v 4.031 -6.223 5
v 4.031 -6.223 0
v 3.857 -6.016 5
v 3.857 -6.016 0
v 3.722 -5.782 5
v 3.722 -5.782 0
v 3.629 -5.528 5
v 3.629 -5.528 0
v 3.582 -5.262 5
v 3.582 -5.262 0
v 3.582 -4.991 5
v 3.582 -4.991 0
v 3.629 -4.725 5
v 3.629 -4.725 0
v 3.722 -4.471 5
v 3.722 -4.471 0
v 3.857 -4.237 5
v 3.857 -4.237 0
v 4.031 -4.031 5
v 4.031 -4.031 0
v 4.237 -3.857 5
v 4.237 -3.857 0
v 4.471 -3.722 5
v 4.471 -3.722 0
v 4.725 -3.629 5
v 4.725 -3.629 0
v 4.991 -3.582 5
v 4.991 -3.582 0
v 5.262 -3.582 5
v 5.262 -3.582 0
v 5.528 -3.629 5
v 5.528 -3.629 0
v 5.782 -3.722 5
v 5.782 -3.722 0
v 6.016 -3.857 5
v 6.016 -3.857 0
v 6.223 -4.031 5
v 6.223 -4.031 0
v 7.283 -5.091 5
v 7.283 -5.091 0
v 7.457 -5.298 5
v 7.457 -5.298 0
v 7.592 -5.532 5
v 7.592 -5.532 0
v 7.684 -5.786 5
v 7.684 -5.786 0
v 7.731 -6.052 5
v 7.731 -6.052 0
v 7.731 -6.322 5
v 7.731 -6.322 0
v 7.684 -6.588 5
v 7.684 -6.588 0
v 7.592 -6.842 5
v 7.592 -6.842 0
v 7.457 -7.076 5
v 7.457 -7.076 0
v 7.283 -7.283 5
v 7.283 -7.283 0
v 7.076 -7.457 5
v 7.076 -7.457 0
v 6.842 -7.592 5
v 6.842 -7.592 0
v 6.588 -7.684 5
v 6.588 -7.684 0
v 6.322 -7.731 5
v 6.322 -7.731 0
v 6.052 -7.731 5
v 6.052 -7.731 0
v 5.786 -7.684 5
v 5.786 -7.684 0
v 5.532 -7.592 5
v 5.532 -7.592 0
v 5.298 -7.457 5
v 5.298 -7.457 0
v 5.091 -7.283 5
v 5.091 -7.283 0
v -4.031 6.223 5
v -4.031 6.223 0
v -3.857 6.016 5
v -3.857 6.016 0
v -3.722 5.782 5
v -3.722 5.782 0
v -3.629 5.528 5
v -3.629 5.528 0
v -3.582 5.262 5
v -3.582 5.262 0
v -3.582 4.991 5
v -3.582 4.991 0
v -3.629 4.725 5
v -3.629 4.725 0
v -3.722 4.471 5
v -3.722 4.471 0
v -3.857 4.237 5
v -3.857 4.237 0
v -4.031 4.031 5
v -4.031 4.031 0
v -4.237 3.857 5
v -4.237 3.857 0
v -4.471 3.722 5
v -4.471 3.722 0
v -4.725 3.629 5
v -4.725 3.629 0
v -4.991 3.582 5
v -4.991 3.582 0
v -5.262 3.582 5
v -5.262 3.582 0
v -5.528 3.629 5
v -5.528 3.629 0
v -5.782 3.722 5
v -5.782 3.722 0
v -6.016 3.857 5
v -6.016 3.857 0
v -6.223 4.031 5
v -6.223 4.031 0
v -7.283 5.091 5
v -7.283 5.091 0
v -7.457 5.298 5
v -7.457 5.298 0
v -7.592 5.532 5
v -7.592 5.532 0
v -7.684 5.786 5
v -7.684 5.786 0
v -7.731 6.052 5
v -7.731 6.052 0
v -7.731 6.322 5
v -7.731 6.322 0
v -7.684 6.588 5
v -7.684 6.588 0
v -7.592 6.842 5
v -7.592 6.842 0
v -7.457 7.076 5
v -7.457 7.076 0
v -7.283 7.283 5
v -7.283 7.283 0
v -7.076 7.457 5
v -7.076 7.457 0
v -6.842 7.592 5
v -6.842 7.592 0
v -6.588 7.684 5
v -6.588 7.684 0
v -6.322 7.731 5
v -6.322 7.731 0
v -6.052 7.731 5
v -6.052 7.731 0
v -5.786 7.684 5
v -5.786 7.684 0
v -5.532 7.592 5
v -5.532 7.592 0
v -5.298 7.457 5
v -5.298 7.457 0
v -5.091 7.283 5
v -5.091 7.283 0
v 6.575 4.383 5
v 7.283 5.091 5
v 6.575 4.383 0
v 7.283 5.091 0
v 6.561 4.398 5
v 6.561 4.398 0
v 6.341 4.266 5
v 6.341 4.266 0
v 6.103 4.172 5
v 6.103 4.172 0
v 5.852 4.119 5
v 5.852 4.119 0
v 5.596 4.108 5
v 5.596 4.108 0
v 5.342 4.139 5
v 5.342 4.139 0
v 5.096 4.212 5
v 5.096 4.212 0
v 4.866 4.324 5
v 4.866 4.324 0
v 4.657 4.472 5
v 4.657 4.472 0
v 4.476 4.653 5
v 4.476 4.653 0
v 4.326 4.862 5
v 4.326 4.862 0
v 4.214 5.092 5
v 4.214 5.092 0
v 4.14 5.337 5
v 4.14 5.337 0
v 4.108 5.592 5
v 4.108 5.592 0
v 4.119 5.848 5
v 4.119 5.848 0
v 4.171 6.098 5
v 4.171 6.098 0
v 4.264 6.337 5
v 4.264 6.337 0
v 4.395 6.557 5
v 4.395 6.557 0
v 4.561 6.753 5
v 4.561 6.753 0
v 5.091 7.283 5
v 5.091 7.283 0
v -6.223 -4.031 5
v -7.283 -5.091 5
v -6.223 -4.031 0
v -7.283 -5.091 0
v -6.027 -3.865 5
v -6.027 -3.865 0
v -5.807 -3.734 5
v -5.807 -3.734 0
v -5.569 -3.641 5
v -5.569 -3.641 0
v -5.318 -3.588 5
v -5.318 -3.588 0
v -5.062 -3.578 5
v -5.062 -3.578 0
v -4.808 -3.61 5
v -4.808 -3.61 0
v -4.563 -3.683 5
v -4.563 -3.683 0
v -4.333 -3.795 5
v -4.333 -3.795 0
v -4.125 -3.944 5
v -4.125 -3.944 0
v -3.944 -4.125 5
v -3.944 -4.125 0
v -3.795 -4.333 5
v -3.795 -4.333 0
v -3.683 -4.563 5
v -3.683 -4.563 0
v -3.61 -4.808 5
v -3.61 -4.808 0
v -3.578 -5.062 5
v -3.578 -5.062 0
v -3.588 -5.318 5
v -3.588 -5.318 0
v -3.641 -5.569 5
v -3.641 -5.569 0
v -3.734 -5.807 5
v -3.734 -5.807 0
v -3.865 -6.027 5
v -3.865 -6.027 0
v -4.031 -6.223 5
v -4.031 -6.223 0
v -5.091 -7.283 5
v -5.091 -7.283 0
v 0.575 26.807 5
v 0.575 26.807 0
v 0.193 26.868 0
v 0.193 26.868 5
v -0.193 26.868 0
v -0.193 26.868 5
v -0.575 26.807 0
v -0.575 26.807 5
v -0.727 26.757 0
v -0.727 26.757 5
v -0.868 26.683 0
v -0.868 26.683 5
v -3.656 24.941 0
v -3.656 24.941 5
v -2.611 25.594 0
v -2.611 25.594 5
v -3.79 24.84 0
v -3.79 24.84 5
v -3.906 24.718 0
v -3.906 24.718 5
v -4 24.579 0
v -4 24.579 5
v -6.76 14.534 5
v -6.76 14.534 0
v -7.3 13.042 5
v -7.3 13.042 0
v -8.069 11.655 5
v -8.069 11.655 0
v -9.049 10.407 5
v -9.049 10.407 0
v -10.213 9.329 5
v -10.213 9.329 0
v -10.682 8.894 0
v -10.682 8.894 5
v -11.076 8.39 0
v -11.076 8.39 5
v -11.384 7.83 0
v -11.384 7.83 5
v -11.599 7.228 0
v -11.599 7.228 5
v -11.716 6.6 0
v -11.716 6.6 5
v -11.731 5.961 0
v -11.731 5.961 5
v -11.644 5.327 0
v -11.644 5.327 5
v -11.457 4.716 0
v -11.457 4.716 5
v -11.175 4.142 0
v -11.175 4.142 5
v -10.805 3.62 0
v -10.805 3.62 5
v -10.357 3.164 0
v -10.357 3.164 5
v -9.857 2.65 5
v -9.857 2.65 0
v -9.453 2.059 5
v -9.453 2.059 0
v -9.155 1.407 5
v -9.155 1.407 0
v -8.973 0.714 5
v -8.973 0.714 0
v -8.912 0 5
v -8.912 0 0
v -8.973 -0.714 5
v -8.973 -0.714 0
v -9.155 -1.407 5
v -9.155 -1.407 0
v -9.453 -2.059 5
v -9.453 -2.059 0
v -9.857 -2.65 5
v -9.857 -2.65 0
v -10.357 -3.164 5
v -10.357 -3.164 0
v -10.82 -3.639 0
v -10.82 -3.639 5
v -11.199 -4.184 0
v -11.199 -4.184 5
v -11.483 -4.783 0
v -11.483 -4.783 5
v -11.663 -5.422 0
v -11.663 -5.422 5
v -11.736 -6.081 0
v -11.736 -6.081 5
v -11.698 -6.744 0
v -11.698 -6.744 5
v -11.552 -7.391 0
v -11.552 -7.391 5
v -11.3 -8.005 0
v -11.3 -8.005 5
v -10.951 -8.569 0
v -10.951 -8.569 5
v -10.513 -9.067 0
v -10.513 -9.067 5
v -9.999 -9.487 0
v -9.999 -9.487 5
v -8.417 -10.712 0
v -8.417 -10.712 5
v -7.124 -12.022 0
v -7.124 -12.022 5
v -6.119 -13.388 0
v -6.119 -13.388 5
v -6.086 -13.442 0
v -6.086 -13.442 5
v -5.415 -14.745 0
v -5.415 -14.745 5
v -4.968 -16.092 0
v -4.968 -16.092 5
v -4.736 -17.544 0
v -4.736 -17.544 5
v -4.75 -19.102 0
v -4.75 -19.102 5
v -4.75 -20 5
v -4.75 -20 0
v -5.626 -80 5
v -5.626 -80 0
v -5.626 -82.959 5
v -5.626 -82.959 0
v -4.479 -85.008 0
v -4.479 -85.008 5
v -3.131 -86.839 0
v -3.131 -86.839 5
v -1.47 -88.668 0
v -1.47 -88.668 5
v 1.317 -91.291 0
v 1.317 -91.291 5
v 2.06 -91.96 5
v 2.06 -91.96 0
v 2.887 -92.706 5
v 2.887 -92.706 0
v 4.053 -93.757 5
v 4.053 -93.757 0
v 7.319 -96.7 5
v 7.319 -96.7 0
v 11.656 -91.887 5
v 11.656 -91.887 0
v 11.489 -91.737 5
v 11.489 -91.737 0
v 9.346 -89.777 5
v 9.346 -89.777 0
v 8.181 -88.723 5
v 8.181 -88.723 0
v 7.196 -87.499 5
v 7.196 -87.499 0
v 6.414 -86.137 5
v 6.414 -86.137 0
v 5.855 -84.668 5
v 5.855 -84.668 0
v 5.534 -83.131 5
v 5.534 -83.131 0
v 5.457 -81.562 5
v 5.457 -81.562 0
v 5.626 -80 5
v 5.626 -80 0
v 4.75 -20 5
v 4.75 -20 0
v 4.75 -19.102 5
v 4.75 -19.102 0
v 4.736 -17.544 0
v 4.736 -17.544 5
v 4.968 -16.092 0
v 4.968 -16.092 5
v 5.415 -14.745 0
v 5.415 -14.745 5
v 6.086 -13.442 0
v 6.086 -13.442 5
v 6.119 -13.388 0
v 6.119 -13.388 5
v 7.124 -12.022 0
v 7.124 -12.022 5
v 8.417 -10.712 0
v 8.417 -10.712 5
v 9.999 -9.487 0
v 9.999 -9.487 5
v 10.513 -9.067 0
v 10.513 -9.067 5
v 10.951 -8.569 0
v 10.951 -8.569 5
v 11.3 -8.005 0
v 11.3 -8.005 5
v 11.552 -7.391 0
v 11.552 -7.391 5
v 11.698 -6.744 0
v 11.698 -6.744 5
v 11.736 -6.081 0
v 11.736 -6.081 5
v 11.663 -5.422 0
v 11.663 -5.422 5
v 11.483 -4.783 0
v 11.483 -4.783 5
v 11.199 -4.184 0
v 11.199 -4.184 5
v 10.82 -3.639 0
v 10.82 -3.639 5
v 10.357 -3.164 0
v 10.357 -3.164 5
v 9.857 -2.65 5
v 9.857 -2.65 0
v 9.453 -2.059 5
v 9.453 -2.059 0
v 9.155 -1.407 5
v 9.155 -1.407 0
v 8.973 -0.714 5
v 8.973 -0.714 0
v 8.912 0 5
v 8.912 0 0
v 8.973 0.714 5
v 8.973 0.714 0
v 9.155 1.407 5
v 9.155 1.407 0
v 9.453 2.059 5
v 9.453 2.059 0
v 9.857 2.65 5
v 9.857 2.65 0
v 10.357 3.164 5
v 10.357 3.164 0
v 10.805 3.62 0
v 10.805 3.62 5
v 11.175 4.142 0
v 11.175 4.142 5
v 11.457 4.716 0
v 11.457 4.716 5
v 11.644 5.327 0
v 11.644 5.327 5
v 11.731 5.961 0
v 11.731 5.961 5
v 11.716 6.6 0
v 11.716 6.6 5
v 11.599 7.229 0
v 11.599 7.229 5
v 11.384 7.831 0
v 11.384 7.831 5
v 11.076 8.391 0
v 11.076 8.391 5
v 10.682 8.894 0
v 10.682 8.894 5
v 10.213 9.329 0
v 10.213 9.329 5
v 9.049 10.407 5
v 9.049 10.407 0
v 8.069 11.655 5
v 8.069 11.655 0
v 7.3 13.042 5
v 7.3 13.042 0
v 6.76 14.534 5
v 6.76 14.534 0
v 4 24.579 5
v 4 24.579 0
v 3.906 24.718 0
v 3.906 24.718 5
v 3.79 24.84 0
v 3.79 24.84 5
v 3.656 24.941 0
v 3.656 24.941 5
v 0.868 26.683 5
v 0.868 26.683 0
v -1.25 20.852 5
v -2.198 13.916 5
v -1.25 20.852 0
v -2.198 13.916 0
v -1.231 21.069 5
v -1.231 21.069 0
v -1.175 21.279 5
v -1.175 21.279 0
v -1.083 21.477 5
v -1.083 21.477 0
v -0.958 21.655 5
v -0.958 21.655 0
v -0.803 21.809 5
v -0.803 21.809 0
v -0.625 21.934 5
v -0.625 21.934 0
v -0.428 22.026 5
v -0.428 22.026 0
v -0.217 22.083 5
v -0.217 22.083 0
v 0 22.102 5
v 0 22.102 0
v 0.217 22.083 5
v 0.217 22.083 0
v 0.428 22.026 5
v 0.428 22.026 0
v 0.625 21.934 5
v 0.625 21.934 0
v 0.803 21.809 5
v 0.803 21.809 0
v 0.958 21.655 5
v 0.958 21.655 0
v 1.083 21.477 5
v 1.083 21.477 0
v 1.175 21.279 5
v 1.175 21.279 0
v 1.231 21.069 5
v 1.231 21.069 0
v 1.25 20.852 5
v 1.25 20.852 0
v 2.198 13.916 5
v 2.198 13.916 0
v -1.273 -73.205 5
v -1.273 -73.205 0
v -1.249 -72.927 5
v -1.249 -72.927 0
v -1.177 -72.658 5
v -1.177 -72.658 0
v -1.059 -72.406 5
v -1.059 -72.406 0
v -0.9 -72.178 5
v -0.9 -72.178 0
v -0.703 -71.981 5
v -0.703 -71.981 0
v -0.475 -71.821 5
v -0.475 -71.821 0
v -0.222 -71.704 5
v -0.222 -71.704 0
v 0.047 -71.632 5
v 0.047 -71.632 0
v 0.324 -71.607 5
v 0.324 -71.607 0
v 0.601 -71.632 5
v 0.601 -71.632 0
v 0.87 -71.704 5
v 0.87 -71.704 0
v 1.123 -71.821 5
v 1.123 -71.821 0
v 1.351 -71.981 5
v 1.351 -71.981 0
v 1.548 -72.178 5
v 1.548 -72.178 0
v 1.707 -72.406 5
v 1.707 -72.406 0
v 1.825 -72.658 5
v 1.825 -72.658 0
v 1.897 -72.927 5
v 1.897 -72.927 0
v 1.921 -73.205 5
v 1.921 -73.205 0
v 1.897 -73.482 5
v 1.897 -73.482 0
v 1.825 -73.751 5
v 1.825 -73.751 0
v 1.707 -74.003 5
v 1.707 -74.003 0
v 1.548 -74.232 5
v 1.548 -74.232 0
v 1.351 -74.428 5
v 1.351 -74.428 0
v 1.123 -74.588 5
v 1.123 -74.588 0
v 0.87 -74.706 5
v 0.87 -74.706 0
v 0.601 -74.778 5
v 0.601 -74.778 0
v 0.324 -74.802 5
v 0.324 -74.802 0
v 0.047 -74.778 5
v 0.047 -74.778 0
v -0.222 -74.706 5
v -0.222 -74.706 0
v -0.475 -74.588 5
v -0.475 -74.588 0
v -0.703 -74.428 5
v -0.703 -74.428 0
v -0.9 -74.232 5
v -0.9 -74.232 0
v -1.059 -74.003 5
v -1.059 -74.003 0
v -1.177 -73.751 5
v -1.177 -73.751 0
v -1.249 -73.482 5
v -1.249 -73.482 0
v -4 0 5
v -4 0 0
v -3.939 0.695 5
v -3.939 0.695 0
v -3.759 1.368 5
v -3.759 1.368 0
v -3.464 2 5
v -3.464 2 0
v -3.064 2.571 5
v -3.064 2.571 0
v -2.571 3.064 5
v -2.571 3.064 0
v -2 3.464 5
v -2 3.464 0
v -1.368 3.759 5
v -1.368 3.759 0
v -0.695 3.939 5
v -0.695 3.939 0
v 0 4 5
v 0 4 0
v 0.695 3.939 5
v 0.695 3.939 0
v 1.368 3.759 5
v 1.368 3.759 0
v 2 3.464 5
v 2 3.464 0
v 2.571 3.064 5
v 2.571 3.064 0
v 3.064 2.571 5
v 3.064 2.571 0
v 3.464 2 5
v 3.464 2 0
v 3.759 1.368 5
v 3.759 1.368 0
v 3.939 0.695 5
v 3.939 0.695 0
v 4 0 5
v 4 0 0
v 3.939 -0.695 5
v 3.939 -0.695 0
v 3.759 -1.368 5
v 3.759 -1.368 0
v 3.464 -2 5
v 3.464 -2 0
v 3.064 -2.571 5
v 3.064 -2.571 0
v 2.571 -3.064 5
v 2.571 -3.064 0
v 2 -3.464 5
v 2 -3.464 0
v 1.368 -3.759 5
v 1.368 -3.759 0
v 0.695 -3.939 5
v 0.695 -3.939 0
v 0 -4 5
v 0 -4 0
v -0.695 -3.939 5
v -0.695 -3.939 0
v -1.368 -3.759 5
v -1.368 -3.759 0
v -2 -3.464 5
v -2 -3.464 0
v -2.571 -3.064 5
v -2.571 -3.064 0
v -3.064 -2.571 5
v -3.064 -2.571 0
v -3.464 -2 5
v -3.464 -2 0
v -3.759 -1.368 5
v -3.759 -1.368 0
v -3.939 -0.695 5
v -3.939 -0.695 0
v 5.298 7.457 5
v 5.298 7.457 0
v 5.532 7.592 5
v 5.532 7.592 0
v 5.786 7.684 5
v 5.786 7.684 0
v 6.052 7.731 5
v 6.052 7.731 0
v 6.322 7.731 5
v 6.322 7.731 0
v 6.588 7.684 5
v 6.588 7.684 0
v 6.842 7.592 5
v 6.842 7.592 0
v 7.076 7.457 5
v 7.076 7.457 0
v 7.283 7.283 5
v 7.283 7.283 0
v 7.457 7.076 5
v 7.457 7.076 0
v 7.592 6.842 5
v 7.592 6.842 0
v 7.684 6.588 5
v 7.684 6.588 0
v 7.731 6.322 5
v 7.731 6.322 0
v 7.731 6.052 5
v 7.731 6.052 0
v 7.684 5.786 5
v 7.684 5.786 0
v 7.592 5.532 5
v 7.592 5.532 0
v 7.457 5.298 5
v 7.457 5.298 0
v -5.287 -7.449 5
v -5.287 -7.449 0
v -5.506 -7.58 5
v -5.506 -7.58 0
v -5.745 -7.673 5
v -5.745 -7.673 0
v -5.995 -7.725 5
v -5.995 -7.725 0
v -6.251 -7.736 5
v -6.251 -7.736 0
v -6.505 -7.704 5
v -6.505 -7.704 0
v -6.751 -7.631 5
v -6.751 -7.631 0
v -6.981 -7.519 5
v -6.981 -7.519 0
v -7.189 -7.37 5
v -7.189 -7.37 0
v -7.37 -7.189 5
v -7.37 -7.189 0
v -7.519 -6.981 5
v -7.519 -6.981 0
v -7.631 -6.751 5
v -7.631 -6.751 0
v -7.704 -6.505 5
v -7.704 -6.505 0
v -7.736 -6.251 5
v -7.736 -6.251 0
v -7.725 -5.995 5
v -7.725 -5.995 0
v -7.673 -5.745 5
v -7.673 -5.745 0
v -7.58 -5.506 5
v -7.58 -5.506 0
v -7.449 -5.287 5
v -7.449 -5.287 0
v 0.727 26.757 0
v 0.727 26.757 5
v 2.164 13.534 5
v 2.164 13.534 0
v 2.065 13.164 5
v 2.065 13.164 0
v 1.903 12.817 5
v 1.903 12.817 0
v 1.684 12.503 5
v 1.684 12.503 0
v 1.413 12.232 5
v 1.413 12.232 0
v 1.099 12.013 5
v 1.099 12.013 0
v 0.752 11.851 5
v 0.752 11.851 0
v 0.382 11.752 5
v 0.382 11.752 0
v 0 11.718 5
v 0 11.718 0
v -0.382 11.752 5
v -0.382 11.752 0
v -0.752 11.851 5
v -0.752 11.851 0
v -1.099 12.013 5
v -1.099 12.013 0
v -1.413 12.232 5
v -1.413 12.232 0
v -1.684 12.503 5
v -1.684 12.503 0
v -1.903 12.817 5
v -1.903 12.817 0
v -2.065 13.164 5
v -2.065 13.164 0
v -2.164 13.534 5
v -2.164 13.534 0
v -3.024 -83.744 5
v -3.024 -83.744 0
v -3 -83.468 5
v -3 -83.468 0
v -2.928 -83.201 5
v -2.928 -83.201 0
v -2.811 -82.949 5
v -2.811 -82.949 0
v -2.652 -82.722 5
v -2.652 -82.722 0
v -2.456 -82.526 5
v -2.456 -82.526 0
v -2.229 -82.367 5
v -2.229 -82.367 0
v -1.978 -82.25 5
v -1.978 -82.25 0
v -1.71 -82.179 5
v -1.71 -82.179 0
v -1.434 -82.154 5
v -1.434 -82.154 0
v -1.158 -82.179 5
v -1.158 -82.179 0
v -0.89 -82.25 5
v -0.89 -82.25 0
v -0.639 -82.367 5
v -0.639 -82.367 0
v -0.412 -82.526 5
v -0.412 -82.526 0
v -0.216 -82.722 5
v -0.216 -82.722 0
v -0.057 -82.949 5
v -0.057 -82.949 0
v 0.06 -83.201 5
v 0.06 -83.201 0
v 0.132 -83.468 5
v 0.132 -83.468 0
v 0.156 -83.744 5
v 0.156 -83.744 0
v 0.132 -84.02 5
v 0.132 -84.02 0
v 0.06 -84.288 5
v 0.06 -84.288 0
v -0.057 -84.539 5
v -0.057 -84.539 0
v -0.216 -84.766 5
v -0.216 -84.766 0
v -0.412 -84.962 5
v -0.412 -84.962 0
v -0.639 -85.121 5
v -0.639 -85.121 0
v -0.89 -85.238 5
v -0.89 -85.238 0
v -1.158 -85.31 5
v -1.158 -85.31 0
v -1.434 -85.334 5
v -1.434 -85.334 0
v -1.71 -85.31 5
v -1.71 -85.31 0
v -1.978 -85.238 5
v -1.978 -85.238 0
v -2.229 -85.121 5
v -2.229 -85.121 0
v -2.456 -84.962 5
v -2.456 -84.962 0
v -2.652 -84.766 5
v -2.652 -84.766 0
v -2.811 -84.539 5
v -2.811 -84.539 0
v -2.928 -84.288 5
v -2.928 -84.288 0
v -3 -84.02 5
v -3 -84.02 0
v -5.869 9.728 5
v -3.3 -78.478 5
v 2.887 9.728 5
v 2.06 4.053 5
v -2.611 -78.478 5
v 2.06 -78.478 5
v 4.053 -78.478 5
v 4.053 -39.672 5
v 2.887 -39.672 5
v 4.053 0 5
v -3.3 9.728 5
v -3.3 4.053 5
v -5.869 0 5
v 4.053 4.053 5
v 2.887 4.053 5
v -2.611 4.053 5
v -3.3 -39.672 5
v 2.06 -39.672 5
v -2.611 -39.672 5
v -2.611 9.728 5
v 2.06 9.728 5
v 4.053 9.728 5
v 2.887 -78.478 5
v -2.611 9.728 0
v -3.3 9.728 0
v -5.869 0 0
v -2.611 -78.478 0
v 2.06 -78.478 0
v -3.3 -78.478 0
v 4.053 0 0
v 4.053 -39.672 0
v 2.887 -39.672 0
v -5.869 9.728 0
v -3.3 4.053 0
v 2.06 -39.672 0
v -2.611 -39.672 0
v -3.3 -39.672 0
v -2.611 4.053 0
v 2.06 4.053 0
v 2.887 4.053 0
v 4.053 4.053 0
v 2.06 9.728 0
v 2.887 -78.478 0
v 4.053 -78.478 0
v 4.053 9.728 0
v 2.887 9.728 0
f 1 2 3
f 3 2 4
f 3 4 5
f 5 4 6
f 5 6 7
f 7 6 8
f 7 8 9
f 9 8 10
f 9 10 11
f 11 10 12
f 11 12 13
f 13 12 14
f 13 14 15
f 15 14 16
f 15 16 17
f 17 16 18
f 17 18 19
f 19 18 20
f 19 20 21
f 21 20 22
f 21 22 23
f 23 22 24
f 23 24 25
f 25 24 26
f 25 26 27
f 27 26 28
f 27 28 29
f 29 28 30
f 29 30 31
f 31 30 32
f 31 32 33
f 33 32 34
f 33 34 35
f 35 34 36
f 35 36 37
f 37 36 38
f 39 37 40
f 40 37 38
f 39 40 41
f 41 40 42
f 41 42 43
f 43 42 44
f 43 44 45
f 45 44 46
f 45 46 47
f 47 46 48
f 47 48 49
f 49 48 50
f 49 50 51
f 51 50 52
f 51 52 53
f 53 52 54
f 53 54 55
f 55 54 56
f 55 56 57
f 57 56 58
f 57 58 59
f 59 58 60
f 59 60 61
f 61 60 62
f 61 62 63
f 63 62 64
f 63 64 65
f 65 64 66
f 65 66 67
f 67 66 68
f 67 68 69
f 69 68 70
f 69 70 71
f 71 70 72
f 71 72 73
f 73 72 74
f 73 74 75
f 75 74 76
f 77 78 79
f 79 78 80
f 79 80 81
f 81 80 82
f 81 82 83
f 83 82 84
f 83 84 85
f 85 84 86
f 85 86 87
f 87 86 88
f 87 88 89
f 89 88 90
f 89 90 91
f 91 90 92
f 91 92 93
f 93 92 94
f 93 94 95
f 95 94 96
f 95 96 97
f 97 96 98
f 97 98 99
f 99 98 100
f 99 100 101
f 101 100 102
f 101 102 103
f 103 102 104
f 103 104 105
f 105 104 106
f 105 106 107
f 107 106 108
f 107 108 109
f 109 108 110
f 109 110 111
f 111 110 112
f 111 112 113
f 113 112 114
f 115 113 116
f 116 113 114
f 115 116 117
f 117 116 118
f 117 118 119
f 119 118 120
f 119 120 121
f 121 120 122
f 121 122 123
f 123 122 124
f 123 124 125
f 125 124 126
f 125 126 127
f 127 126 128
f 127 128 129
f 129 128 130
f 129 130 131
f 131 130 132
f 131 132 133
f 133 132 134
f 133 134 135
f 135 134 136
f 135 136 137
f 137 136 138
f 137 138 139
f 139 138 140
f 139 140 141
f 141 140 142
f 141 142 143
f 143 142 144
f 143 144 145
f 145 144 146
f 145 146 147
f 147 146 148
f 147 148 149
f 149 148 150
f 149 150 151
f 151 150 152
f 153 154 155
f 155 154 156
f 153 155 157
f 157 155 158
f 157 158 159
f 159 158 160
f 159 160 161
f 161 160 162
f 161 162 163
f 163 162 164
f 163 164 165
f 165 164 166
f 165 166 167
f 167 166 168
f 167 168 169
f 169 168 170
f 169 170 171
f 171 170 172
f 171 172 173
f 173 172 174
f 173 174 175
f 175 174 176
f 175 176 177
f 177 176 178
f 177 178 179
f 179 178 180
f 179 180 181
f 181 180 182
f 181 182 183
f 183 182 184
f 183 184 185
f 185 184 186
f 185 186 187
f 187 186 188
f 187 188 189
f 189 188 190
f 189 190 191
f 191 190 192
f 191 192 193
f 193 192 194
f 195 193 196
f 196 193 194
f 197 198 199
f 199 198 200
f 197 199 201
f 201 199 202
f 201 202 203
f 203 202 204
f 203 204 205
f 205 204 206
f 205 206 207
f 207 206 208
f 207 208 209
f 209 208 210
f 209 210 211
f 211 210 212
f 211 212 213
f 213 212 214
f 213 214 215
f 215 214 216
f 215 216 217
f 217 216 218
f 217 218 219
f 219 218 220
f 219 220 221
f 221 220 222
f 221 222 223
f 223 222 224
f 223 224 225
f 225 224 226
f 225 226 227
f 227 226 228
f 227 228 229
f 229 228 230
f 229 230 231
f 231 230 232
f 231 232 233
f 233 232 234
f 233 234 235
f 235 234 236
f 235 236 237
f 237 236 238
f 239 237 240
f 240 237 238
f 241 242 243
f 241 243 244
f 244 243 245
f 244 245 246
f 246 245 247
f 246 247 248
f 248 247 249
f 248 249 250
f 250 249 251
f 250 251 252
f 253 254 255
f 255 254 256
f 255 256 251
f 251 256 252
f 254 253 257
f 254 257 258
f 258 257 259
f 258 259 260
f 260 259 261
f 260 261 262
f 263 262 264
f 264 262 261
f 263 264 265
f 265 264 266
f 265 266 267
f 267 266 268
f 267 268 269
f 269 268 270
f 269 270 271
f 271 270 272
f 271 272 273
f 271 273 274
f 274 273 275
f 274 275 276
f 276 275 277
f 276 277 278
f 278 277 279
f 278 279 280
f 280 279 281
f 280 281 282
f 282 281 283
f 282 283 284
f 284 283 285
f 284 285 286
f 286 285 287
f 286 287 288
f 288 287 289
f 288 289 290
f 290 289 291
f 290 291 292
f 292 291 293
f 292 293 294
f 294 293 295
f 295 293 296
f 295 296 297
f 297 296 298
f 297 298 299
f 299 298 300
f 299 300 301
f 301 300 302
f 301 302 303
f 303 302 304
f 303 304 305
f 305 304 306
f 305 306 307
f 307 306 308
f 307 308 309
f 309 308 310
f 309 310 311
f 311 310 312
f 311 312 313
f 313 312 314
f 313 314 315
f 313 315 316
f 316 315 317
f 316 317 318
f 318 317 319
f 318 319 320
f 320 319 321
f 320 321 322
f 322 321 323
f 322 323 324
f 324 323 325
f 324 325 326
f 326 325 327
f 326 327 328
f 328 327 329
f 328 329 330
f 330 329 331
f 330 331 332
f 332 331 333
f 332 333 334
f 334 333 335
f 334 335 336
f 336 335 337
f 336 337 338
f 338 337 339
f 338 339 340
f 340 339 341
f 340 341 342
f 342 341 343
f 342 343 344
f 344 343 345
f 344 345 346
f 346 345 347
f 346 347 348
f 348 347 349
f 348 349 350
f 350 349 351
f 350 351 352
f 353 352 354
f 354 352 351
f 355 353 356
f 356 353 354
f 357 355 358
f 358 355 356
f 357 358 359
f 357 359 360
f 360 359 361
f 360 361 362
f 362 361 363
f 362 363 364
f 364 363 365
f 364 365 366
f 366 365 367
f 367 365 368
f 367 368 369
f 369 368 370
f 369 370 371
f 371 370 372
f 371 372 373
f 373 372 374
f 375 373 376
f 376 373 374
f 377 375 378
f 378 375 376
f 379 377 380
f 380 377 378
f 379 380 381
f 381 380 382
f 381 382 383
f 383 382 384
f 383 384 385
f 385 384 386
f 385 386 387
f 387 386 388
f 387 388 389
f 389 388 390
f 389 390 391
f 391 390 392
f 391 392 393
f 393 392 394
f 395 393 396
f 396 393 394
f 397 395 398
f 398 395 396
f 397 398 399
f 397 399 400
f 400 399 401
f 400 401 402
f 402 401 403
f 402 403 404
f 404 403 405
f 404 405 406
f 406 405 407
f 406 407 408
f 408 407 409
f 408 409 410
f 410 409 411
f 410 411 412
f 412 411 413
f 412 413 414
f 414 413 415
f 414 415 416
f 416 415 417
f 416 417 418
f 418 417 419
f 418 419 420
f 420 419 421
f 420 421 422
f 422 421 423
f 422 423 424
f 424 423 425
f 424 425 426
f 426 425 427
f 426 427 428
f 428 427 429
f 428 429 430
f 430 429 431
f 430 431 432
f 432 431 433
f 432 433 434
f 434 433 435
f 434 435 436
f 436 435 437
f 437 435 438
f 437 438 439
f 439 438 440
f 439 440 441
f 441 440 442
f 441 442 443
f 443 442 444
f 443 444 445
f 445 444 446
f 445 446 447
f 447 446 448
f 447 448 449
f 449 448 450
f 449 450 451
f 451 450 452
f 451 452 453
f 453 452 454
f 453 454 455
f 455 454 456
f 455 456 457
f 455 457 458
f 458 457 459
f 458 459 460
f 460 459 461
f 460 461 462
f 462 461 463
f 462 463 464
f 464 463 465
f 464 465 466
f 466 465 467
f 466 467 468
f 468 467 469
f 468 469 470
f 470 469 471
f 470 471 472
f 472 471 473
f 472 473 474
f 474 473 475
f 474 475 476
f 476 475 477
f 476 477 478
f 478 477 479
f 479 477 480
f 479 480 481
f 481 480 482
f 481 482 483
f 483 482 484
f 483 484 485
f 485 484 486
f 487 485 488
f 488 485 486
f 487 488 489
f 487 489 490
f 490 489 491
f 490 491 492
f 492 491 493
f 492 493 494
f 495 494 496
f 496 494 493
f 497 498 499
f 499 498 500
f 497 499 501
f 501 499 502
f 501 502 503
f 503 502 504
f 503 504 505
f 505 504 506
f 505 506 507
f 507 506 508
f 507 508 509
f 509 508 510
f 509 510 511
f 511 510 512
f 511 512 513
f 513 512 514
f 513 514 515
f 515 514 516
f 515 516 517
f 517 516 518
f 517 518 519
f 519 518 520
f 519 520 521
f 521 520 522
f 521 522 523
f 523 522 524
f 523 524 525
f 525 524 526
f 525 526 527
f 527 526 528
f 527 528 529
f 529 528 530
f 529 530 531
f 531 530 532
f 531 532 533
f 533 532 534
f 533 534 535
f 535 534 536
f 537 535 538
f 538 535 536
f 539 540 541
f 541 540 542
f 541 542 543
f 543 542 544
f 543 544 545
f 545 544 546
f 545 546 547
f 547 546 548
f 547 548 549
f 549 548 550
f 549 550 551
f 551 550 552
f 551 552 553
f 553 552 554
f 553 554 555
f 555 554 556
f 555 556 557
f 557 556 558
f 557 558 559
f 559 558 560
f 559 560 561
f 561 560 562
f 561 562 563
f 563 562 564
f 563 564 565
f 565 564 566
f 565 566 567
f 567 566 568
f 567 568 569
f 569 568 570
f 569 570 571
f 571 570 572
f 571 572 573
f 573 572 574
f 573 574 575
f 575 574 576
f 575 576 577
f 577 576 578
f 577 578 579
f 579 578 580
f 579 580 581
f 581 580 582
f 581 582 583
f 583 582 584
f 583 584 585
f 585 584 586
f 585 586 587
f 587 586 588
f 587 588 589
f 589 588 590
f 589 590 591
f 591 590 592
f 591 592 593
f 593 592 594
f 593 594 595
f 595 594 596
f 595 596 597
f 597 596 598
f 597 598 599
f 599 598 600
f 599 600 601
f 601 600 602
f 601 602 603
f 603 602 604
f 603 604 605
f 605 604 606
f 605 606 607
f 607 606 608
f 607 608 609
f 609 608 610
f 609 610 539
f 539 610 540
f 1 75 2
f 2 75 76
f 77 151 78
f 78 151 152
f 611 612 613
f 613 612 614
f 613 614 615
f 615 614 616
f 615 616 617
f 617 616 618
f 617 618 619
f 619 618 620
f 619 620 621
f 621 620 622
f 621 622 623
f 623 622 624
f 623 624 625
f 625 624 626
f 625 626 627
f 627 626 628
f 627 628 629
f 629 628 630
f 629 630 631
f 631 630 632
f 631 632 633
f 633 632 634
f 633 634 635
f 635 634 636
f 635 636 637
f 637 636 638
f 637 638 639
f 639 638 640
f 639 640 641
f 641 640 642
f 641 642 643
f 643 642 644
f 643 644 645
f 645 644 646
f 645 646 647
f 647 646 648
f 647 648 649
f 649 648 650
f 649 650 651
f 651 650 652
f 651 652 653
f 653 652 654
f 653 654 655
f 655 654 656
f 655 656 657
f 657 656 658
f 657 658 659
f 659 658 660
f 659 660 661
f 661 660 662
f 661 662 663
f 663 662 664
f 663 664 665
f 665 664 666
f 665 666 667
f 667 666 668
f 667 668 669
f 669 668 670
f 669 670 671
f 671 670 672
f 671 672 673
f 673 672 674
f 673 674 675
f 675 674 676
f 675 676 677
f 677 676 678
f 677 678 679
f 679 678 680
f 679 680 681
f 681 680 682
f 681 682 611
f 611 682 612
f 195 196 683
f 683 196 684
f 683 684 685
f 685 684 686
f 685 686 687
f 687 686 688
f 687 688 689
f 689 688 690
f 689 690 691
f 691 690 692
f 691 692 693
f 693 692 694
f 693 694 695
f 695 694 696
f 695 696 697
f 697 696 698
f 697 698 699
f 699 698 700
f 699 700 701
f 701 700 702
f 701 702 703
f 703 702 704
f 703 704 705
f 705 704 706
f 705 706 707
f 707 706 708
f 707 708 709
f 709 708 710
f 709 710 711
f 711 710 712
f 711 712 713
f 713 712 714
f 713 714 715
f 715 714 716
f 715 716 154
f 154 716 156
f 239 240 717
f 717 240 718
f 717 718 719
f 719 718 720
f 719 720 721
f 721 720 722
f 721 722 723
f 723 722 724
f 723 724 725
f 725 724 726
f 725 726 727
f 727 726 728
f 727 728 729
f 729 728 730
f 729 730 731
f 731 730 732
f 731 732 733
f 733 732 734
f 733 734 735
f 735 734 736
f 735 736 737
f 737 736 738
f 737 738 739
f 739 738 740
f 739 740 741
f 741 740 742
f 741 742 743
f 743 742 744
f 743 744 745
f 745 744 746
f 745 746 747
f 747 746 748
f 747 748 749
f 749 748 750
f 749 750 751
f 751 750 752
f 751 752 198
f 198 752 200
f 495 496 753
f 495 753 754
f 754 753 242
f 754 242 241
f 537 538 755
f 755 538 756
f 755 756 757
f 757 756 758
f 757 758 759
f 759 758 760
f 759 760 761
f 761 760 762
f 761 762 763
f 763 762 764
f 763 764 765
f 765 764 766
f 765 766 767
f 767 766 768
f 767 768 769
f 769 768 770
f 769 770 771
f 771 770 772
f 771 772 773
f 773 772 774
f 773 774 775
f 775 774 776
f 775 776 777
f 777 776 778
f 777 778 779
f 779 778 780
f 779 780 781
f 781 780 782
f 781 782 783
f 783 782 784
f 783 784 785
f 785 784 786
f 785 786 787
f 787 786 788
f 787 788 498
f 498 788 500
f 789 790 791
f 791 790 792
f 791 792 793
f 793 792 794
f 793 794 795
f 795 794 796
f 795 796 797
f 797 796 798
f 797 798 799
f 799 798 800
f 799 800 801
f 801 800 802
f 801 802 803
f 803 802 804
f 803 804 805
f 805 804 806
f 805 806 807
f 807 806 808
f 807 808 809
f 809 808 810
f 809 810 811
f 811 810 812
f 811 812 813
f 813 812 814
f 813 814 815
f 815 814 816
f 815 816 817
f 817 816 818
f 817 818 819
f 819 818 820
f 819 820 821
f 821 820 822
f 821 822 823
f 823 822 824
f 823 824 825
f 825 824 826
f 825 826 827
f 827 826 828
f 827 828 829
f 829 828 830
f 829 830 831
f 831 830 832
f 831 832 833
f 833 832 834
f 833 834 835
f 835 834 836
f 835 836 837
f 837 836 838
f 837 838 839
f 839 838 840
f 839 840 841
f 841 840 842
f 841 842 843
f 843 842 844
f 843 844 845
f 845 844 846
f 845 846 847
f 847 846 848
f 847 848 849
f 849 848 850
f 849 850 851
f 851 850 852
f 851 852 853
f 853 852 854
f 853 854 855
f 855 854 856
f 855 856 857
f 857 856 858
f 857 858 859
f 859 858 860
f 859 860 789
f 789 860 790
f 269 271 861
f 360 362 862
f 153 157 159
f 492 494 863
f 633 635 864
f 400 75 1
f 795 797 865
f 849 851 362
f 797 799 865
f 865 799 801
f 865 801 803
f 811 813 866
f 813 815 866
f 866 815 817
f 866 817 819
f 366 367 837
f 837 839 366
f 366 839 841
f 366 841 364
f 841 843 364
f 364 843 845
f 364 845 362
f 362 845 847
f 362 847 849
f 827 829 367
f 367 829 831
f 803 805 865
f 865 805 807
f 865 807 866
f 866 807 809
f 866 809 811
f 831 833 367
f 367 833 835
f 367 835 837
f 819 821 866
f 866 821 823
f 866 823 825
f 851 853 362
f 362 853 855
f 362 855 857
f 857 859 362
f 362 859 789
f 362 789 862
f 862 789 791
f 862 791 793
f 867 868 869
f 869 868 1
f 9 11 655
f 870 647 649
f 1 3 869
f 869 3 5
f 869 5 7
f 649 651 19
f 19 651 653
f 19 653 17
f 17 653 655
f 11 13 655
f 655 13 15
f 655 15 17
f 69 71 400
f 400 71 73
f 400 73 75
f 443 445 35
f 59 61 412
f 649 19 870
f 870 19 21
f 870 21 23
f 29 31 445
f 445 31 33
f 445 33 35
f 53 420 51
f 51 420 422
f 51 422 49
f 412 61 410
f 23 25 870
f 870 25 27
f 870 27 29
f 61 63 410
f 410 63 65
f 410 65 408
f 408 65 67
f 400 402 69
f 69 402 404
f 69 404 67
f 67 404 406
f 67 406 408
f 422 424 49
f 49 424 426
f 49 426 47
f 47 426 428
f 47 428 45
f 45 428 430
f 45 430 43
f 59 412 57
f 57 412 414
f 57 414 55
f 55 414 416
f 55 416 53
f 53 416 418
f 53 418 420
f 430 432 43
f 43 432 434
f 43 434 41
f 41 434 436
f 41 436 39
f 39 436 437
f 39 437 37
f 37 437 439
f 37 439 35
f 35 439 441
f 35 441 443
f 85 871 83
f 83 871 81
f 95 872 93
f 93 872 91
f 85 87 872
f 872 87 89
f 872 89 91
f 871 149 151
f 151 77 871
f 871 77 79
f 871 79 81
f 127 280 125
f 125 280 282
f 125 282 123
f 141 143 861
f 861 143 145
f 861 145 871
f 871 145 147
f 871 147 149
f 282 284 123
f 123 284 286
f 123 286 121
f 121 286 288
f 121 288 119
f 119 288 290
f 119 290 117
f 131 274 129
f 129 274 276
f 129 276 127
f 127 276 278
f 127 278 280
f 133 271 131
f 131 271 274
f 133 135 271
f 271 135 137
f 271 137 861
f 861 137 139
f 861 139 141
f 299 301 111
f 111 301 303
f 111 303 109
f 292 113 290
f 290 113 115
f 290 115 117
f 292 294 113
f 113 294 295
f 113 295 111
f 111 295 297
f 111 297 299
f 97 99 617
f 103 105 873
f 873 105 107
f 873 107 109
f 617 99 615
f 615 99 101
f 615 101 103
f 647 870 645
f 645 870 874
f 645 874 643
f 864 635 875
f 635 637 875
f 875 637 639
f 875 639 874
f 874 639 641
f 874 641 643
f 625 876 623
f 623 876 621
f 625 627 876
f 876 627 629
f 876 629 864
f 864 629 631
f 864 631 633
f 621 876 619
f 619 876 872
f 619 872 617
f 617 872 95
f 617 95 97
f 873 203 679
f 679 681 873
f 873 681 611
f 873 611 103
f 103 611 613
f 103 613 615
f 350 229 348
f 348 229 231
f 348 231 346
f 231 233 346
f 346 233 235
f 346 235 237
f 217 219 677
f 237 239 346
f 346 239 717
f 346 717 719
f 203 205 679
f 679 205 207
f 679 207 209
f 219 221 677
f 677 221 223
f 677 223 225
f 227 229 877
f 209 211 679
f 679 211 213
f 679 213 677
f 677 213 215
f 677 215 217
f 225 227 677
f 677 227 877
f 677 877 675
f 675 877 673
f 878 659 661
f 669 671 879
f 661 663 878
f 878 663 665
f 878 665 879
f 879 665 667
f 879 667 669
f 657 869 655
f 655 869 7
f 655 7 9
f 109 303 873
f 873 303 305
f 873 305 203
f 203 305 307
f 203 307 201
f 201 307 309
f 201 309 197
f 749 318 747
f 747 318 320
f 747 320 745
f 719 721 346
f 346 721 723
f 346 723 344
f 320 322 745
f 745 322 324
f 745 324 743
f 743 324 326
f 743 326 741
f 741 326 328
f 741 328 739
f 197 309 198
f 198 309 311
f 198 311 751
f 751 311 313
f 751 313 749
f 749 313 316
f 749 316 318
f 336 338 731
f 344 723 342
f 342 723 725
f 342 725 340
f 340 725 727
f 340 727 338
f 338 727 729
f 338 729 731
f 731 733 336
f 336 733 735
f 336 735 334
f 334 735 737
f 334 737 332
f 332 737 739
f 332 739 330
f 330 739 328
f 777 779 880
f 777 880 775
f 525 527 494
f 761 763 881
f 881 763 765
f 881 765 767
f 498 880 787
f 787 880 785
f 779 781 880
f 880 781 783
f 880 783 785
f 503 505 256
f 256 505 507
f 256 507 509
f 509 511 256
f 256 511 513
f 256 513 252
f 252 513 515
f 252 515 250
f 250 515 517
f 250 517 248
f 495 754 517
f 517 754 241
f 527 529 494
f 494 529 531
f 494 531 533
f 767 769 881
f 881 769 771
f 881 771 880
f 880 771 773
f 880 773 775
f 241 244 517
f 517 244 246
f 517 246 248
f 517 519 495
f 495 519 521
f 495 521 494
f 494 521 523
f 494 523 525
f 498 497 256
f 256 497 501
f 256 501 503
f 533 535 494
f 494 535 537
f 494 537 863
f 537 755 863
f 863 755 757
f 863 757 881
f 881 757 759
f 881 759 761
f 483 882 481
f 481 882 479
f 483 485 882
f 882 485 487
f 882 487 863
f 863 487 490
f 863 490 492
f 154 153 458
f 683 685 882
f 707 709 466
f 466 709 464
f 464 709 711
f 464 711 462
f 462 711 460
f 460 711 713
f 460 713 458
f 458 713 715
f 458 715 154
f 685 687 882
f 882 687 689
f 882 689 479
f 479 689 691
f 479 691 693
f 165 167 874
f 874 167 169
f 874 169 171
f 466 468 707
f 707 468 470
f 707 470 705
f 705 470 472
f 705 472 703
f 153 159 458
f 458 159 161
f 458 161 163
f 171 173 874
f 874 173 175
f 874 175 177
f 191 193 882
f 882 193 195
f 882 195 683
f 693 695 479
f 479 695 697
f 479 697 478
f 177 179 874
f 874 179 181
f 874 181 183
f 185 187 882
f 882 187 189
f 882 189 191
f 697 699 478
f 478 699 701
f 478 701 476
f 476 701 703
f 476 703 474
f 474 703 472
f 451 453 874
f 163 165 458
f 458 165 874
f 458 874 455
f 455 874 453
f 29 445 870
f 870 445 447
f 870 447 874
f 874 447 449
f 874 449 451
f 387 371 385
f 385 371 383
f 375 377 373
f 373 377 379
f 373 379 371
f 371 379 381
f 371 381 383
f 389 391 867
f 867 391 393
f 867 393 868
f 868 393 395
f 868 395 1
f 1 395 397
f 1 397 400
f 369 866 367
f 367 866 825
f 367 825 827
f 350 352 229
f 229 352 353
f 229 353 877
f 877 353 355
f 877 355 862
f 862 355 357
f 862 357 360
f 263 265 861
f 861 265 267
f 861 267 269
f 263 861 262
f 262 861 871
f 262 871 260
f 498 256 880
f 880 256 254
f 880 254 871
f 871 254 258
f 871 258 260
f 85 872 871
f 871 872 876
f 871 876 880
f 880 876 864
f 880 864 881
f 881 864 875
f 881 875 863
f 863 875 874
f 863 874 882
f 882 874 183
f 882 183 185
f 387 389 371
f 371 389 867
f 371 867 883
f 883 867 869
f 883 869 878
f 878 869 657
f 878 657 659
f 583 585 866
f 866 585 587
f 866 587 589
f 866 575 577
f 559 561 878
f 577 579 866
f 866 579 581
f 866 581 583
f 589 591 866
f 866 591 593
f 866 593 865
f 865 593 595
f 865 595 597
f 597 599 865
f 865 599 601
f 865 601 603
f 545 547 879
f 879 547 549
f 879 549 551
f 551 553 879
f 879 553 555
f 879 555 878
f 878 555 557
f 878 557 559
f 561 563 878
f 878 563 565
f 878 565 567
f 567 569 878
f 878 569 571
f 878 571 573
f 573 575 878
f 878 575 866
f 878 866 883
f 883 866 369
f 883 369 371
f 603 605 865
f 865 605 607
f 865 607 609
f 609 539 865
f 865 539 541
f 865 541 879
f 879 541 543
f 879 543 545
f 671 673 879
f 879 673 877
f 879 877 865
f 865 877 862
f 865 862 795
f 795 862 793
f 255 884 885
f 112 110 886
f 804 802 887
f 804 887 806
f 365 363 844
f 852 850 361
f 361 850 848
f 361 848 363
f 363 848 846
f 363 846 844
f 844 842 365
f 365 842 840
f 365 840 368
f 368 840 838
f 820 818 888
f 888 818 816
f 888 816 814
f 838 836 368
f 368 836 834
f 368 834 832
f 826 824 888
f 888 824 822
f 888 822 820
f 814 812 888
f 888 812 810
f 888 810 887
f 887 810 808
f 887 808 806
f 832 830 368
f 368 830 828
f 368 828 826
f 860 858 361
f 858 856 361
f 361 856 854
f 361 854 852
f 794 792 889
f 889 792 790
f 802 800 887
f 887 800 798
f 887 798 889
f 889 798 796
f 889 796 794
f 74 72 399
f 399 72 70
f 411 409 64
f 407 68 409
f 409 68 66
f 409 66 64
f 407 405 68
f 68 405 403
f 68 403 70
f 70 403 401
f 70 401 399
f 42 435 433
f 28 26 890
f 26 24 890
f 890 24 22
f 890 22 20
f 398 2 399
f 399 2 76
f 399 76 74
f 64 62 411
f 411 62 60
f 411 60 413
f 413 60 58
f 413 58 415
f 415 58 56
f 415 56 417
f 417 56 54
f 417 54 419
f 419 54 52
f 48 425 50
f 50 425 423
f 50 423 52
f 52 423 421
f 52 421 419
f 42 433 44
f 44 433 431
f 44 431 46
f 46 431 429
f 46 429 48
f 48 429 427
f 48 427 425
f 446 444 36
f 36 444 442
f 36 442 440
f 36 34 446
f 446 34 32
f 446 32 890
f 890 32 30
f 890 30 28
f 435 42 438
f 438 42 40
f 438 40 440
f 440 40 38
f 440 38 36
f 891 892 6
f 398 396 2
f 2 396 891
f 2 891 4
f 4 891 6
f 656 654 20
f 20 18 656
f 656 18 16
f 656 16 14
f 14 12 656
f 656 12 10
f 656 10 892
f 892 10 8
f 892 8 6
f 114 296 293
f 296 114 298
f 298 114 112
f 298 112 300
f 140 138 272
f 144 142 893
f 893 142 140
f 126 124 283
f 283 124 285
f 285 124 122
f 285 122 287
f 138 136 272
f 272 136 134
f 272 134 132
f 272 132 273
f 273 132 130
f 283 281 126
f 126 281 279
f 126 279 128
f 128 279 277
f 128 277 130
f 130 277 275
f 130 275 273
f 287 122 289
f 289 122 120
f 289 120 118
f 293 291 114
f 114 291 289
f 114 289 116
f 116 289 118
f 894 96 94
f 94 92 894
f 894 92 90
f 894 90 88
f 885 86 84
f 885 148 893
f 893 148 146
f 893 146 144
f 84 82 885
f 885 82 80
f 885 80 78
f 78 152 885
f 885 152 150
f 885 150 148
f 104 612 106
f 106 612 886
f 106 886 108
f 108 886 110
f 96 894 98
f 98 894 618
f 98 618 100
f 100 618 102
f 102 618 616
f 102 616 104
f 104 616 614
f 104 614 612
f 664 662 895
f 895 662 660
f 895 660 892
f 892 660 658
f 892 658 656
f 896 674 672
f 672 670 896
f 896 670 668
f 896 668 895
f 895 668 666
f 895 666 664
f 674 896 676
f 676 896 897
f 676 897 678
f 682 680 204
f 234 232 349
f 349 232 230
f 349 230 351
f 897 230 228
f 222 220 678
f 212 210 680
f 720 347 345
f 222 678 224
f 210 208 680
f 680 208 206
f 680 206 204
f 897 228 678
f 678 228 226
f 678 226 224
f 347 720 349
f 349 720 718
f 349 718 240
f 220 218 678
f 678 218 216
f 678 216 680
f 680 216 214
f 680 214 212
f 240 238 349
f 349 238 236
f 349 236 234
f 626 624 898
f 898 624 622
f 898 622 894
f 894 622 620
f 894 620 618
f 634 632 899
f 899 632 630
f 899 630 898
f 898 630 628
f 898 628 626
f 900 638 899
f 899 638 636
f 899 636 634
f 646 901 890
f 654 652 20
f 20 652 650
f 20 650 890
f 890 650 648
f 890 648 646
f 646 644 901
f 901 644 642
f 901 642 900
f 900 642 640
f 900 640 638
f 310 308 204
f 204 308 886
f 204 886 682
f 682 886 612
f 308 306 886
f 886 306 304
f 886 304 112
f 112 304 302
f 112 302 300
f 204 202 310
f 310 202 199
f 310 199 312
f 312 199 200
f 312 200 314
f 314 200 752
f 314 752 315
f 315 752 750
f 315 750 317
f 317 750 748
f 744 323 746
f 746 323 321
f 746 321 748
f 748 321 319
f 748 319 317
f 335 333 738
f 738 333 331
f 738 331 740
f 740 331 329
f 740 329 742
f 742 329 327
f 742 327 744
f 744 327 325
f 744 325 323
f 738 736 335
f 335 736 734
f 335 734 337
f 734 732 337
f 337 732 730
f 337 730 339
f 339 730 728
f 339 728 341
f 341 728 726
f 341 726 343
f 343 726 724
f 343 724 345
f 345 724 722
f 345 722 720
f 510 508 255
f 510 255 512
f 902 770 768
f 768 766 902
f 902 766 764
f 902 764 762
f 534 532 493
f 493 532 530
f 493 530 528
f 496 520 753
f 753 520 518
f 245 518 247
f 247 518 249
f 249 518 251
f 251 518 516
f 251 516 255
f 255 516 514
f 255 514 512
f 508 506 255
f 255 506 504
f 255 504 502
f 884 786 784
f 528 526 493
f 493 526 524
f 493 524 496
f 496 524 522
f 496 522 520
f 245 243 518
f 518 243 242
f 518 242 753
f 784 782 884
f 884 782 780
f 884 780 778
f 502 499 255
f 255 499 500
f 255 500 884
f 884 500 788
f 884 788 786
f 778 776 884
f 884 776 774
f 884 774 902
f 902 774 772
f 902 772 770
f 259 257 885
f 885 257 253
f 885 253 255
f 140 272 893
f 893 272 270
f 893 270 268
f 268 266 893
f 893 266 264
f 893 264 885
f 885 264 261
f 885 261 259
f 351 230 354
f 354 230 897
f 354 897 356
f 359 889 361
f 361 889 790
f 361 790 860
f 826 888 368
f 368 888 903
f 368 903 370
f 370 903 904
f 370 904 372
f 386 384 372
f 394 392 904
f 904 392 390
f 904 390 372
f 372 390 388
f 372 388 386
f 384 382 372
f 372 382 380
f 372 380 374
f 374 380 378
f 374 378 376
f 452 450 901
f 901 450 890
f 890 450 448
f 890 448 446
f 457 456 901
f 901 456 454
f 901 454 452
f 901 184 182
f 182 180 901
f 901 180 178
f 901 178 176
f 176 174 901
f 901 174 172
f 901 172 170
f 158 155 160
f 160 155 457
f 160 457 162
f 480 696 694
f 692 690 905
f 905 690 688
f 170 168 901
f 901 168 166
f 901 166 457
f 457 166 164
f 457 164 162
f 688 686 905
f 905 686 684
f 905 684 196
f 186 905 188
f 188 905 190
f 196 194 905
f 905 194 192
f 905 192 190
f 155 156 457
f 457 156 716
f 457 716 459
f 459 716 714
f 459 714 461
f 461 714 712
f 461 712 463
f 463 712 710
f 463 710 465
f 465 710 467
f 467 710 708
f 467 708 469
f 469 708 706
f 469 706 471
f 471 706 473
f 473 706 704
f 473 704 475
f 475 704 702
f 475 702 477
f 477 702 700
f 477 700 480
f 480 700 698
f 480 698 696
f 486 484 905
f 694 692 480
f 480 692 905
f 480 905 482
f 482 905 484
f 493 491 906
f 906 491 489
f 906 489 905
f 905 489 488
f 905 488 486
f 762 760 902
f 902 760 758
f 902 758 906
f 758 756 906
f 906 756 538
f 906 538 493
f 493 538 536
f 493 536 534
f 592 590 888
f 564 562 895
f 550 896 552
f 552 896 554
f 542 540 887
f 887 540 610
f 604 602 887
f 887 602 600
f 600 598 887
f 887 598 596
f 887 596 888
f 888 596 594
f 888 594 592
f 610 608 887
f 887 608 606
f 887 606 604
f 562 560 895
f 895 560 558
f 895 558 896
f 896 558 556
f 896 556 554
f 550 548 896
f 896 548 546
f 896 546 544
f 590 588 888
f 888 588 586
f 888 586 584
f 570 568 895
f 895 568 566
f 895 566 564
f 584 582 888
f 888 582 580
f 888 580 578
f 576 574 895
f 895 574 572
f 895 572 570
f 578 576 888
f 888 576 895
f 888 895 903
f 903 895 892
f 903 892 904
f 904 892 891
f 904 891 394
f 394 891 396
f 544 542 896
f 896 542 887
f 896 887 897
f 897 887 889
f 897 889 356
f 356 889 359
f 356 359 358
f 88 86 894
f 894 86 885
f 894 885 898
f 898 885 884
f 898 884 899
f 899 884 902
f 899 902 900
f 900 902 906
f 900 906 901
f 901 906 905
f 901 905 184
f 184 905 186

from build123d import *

# Parameters (mm, degrees)
CROQUIS1_R              = 1.59
CROQUIS1_R_2            = 1.597396507
CROQUIS1_R_3            = 4
SALIENTE_EXTRUIR1_DEPTH = 5


with BuildPart() as part:
    # Croquis1 → Saliente-Extruir1 (new body)
    with BuildSketch(Plane.XY):
        with BuildLine():
            ThreePointArc((0.575431621, 26.806598054), (0.289790201, 26.858453505), (0, 26.875821538))
            ThreePointArc((0, 26.875821538), (-0.289790201, 26.858453505), (-0.575431621, 26.806598054))
            ThreePointArc((-0.575431621, 26.806598054), (-0.726756088, 26.756581913), (-0.868212659, 26.683160203))
            Line((-0.868212659, 26.683160203), (-3.655582472, 24.941297878))
            ThreePointArc((-3.655582472, 24.941297878), (-3.850805823, 24.781837219), (-3.999952041, 24.578624857))
            Line((-3.999952041, 24.578624857), (-6.759600821, 14.534111339))
            ThreePointArc((-6.759600821, 14.534111339), (-8.069386565, 11.655007451), (-10.212860864, 9.329003191))
            Line((-10.212860864, 9.329003191), (-10.213051715, 9.328852796))
            ThreePointArc((-10.213051715, 9.328852796), (-11.736097249, 6.280434064), (-10.356800654, 3.164336284))
            ThreePointArc((-10.356800654, 3.164336284), (-8.911806366, 0), (-10.356800654, -3.164336284))
            ThreePointArc((-10.356800654, -3.164336284), (-11.730778796, -6.413465762), (-9.998574535, -9.48659555))
            add(Edge.make_bspline(
                [(-4.75, -19.102398031), (-4.354825004, -14.738479929), (-6.980177997, -11.541798515), (-9.998574535, -9.48659555)],
                knots=[0, 0, 0, 0, 1, 1, 1, 1], degree=3))
            Line((-4.75, -19.102398031), (-4.75, -20))
            Line((-4.75, -20), (-5.626230736, -80))
            Line((-5.626230736, -80), (-5.626230736, -82.958659211))
            add(Edge.make_bspline(
                [(-5.626230736, -82.958659211), (-3.957996586, -86.469029482), (-1.413273472, -88.8202413), (1.317079372, -91.291125809)],
                knots=[0, 0, 0, 0, 0.775055833, 0.775055833, 0.775055833, 0.775055833], degree=3))
            Line((1.317079372, -91.291125809), (7.31863448, -96.699816586))
            Line((7.31863448, -96.699816586), (11.655892242, -91.88713778))
            Line((11.655892242, -91.88713778), (11.488752063, -91.736508564))
            Line((11.488752063, -91.736508564), (9.346047089, -89.776810767))
            ThreePointArc((9.346047089, -89.776810767), (6.105829013, -85.413576573), (5.626230736, -80))
            Line((5.626230736, -80), (4.75, -20))
            Line((4.75, -20), (4.75, -19.102398031))
            add(Edge.make_bspline(
                [(4.75, -19.102398031), (4.354825004, -14.738479929), (6.980177997, -11.541798515), (9.998574535, -9.48659555)],
                knots=[0, 0, 0, 0, 1, 1, 1, 1], degree=3))
            ThreePointArc((9.998574535, -9.48659555), (11.730778796, -6.413465762), (10.356800654, -3.164336284))
            ThreePointArc((10.356800654, -3.164336284), (8.911806366, 0), (10.356800654, 3.164336284))
            ThreePointArc((10.356800654, 3.164336284), (11.736094415, 6.280555524), (10.212860864, 9.329003191))
            ThreePointArc((10.212860864, 9.329003191), (8.069386565, 11.655007451), (6.759600821, 14.534111339))
            Line((6.759600821, 14.534111339), (3.999952041, 24.578624857))
            ThreePointArc((3.999952041, 24.578624857), (3.850805823, 24.781837219), (3.655582472, 24.941297878))
            Line((3.655582472, 24.941297878), (0.868212659, 26.683160203))
            ThreePointArc((0.868212659, 26.683160203), (0.726756088, 26.756581913), (0.575431621, 26.806598054))
        make_face()
        with Locations((-1.433916555, -83.744346036)):
            Circle(CROQUIS1_R, mode=Mode.SUBTRACT)
        with Locations((0.324013646, -73.204752137)):
            Circle(CROQUIS1_R_2, mode=Mode.SUBTRACT)
        with BuildLine():
            ThreePointArc((-5.091168825, -7.283199846), (-7.283199846, -7.283199846), (-7.283199846, -5.091168825))
            Line((-7.283199846, -5.091168825), (-6.222539674, -4.030508653))
            ThreePointArc((-6.222539674, -4.030508653), (-4.030508653, -4.030508653), (-4.030508653, -6.222539674))
            Line((-4.030508653, -6.222539674), (-5.091168825, -7.283199846))
        make_face(mode=Mode.SUBTRACT)
        with BuildLine():
            ThreePointArc((-7.283199846, 5.091168825), (-7.283199846, 7.283199846), (-5.091168825, 7.283199846))
            Line((-5.091168825, 7.283199846), (-4.030508653, 6.222539674))
            ThreePointArc((-4.030508653, 6.222539674), (-4.030508653, 4.030508653), (-6.222539674, 4.030508653))
            Line((-6.222539674, 4.030508653), (-7.283199846, 5.091168825))
        make_face(mode=Mode.SUBTRACT)
        with BuildLine():
            ThreePointArc((7.283199846, -5.091168825), (7.283199846, -7.283199846), (5.091168825, -7.283199846))
            Line((5.091168825, -7.283199846), (4.030508653, -6.222539674))
            ThreePointArc((4.030508653, -6.222539674), (4.030508653, -4.030508653), (6.222539674, -4.030508653))
            Line((6.222539674, -4.030508653), (7.283199846, -5.091168825))
        make_face(mode=Mode.SUBTRACT)
        Circle(CROQUIS1_R_3, mode=Mode.SUBTRACT)
        with BuildLine():
            Line((4.560838717, 6.752869739), (5.091168825, 7.283199846))
            ThreePointArc((5.091168825, 7.283199846), (7.283199846, 7.283199846), (7.283199846, 5.091168825))
            Line((7.283199846, 5.091168825), (6.574607513, 4.382576491))
            ThreePointArc((6.574607513, 4.382576491), (6.567912728, 4.390303583), (6.561246717, 4.398055511))
            ThreePointArc((6.561246717, 4.398055511), (4.475555235, 4.653344091), (4.560838717, 6.752869739))
        make_face(mode=Mode.SUBTRACT)
        with BuildLine():
            ThreePointArc((2.197784017, 13.915961953), (0, 11.718177935), (-2.197784017, 13.915961953))
            Line((-2.197784017, 13.915961953), (-1.25, 20.851501258))
            ThreePointArc((-1.25, 20.851501258), (-0.883883476, 21.735384735), (0, 22.101501258))
            ThreePointArc((0, 22.101501258), (0.883883476, 21.735384735), (1.25, 20.851501258))
            Line((1.25, 20.851501258), (2.197784017, 13.915961953))
        make_face(mode=Mode.SUBTRACT)
    extrude(amount=SALIENTE_EXTRUIR1_DEPTH)


solid = part.part
